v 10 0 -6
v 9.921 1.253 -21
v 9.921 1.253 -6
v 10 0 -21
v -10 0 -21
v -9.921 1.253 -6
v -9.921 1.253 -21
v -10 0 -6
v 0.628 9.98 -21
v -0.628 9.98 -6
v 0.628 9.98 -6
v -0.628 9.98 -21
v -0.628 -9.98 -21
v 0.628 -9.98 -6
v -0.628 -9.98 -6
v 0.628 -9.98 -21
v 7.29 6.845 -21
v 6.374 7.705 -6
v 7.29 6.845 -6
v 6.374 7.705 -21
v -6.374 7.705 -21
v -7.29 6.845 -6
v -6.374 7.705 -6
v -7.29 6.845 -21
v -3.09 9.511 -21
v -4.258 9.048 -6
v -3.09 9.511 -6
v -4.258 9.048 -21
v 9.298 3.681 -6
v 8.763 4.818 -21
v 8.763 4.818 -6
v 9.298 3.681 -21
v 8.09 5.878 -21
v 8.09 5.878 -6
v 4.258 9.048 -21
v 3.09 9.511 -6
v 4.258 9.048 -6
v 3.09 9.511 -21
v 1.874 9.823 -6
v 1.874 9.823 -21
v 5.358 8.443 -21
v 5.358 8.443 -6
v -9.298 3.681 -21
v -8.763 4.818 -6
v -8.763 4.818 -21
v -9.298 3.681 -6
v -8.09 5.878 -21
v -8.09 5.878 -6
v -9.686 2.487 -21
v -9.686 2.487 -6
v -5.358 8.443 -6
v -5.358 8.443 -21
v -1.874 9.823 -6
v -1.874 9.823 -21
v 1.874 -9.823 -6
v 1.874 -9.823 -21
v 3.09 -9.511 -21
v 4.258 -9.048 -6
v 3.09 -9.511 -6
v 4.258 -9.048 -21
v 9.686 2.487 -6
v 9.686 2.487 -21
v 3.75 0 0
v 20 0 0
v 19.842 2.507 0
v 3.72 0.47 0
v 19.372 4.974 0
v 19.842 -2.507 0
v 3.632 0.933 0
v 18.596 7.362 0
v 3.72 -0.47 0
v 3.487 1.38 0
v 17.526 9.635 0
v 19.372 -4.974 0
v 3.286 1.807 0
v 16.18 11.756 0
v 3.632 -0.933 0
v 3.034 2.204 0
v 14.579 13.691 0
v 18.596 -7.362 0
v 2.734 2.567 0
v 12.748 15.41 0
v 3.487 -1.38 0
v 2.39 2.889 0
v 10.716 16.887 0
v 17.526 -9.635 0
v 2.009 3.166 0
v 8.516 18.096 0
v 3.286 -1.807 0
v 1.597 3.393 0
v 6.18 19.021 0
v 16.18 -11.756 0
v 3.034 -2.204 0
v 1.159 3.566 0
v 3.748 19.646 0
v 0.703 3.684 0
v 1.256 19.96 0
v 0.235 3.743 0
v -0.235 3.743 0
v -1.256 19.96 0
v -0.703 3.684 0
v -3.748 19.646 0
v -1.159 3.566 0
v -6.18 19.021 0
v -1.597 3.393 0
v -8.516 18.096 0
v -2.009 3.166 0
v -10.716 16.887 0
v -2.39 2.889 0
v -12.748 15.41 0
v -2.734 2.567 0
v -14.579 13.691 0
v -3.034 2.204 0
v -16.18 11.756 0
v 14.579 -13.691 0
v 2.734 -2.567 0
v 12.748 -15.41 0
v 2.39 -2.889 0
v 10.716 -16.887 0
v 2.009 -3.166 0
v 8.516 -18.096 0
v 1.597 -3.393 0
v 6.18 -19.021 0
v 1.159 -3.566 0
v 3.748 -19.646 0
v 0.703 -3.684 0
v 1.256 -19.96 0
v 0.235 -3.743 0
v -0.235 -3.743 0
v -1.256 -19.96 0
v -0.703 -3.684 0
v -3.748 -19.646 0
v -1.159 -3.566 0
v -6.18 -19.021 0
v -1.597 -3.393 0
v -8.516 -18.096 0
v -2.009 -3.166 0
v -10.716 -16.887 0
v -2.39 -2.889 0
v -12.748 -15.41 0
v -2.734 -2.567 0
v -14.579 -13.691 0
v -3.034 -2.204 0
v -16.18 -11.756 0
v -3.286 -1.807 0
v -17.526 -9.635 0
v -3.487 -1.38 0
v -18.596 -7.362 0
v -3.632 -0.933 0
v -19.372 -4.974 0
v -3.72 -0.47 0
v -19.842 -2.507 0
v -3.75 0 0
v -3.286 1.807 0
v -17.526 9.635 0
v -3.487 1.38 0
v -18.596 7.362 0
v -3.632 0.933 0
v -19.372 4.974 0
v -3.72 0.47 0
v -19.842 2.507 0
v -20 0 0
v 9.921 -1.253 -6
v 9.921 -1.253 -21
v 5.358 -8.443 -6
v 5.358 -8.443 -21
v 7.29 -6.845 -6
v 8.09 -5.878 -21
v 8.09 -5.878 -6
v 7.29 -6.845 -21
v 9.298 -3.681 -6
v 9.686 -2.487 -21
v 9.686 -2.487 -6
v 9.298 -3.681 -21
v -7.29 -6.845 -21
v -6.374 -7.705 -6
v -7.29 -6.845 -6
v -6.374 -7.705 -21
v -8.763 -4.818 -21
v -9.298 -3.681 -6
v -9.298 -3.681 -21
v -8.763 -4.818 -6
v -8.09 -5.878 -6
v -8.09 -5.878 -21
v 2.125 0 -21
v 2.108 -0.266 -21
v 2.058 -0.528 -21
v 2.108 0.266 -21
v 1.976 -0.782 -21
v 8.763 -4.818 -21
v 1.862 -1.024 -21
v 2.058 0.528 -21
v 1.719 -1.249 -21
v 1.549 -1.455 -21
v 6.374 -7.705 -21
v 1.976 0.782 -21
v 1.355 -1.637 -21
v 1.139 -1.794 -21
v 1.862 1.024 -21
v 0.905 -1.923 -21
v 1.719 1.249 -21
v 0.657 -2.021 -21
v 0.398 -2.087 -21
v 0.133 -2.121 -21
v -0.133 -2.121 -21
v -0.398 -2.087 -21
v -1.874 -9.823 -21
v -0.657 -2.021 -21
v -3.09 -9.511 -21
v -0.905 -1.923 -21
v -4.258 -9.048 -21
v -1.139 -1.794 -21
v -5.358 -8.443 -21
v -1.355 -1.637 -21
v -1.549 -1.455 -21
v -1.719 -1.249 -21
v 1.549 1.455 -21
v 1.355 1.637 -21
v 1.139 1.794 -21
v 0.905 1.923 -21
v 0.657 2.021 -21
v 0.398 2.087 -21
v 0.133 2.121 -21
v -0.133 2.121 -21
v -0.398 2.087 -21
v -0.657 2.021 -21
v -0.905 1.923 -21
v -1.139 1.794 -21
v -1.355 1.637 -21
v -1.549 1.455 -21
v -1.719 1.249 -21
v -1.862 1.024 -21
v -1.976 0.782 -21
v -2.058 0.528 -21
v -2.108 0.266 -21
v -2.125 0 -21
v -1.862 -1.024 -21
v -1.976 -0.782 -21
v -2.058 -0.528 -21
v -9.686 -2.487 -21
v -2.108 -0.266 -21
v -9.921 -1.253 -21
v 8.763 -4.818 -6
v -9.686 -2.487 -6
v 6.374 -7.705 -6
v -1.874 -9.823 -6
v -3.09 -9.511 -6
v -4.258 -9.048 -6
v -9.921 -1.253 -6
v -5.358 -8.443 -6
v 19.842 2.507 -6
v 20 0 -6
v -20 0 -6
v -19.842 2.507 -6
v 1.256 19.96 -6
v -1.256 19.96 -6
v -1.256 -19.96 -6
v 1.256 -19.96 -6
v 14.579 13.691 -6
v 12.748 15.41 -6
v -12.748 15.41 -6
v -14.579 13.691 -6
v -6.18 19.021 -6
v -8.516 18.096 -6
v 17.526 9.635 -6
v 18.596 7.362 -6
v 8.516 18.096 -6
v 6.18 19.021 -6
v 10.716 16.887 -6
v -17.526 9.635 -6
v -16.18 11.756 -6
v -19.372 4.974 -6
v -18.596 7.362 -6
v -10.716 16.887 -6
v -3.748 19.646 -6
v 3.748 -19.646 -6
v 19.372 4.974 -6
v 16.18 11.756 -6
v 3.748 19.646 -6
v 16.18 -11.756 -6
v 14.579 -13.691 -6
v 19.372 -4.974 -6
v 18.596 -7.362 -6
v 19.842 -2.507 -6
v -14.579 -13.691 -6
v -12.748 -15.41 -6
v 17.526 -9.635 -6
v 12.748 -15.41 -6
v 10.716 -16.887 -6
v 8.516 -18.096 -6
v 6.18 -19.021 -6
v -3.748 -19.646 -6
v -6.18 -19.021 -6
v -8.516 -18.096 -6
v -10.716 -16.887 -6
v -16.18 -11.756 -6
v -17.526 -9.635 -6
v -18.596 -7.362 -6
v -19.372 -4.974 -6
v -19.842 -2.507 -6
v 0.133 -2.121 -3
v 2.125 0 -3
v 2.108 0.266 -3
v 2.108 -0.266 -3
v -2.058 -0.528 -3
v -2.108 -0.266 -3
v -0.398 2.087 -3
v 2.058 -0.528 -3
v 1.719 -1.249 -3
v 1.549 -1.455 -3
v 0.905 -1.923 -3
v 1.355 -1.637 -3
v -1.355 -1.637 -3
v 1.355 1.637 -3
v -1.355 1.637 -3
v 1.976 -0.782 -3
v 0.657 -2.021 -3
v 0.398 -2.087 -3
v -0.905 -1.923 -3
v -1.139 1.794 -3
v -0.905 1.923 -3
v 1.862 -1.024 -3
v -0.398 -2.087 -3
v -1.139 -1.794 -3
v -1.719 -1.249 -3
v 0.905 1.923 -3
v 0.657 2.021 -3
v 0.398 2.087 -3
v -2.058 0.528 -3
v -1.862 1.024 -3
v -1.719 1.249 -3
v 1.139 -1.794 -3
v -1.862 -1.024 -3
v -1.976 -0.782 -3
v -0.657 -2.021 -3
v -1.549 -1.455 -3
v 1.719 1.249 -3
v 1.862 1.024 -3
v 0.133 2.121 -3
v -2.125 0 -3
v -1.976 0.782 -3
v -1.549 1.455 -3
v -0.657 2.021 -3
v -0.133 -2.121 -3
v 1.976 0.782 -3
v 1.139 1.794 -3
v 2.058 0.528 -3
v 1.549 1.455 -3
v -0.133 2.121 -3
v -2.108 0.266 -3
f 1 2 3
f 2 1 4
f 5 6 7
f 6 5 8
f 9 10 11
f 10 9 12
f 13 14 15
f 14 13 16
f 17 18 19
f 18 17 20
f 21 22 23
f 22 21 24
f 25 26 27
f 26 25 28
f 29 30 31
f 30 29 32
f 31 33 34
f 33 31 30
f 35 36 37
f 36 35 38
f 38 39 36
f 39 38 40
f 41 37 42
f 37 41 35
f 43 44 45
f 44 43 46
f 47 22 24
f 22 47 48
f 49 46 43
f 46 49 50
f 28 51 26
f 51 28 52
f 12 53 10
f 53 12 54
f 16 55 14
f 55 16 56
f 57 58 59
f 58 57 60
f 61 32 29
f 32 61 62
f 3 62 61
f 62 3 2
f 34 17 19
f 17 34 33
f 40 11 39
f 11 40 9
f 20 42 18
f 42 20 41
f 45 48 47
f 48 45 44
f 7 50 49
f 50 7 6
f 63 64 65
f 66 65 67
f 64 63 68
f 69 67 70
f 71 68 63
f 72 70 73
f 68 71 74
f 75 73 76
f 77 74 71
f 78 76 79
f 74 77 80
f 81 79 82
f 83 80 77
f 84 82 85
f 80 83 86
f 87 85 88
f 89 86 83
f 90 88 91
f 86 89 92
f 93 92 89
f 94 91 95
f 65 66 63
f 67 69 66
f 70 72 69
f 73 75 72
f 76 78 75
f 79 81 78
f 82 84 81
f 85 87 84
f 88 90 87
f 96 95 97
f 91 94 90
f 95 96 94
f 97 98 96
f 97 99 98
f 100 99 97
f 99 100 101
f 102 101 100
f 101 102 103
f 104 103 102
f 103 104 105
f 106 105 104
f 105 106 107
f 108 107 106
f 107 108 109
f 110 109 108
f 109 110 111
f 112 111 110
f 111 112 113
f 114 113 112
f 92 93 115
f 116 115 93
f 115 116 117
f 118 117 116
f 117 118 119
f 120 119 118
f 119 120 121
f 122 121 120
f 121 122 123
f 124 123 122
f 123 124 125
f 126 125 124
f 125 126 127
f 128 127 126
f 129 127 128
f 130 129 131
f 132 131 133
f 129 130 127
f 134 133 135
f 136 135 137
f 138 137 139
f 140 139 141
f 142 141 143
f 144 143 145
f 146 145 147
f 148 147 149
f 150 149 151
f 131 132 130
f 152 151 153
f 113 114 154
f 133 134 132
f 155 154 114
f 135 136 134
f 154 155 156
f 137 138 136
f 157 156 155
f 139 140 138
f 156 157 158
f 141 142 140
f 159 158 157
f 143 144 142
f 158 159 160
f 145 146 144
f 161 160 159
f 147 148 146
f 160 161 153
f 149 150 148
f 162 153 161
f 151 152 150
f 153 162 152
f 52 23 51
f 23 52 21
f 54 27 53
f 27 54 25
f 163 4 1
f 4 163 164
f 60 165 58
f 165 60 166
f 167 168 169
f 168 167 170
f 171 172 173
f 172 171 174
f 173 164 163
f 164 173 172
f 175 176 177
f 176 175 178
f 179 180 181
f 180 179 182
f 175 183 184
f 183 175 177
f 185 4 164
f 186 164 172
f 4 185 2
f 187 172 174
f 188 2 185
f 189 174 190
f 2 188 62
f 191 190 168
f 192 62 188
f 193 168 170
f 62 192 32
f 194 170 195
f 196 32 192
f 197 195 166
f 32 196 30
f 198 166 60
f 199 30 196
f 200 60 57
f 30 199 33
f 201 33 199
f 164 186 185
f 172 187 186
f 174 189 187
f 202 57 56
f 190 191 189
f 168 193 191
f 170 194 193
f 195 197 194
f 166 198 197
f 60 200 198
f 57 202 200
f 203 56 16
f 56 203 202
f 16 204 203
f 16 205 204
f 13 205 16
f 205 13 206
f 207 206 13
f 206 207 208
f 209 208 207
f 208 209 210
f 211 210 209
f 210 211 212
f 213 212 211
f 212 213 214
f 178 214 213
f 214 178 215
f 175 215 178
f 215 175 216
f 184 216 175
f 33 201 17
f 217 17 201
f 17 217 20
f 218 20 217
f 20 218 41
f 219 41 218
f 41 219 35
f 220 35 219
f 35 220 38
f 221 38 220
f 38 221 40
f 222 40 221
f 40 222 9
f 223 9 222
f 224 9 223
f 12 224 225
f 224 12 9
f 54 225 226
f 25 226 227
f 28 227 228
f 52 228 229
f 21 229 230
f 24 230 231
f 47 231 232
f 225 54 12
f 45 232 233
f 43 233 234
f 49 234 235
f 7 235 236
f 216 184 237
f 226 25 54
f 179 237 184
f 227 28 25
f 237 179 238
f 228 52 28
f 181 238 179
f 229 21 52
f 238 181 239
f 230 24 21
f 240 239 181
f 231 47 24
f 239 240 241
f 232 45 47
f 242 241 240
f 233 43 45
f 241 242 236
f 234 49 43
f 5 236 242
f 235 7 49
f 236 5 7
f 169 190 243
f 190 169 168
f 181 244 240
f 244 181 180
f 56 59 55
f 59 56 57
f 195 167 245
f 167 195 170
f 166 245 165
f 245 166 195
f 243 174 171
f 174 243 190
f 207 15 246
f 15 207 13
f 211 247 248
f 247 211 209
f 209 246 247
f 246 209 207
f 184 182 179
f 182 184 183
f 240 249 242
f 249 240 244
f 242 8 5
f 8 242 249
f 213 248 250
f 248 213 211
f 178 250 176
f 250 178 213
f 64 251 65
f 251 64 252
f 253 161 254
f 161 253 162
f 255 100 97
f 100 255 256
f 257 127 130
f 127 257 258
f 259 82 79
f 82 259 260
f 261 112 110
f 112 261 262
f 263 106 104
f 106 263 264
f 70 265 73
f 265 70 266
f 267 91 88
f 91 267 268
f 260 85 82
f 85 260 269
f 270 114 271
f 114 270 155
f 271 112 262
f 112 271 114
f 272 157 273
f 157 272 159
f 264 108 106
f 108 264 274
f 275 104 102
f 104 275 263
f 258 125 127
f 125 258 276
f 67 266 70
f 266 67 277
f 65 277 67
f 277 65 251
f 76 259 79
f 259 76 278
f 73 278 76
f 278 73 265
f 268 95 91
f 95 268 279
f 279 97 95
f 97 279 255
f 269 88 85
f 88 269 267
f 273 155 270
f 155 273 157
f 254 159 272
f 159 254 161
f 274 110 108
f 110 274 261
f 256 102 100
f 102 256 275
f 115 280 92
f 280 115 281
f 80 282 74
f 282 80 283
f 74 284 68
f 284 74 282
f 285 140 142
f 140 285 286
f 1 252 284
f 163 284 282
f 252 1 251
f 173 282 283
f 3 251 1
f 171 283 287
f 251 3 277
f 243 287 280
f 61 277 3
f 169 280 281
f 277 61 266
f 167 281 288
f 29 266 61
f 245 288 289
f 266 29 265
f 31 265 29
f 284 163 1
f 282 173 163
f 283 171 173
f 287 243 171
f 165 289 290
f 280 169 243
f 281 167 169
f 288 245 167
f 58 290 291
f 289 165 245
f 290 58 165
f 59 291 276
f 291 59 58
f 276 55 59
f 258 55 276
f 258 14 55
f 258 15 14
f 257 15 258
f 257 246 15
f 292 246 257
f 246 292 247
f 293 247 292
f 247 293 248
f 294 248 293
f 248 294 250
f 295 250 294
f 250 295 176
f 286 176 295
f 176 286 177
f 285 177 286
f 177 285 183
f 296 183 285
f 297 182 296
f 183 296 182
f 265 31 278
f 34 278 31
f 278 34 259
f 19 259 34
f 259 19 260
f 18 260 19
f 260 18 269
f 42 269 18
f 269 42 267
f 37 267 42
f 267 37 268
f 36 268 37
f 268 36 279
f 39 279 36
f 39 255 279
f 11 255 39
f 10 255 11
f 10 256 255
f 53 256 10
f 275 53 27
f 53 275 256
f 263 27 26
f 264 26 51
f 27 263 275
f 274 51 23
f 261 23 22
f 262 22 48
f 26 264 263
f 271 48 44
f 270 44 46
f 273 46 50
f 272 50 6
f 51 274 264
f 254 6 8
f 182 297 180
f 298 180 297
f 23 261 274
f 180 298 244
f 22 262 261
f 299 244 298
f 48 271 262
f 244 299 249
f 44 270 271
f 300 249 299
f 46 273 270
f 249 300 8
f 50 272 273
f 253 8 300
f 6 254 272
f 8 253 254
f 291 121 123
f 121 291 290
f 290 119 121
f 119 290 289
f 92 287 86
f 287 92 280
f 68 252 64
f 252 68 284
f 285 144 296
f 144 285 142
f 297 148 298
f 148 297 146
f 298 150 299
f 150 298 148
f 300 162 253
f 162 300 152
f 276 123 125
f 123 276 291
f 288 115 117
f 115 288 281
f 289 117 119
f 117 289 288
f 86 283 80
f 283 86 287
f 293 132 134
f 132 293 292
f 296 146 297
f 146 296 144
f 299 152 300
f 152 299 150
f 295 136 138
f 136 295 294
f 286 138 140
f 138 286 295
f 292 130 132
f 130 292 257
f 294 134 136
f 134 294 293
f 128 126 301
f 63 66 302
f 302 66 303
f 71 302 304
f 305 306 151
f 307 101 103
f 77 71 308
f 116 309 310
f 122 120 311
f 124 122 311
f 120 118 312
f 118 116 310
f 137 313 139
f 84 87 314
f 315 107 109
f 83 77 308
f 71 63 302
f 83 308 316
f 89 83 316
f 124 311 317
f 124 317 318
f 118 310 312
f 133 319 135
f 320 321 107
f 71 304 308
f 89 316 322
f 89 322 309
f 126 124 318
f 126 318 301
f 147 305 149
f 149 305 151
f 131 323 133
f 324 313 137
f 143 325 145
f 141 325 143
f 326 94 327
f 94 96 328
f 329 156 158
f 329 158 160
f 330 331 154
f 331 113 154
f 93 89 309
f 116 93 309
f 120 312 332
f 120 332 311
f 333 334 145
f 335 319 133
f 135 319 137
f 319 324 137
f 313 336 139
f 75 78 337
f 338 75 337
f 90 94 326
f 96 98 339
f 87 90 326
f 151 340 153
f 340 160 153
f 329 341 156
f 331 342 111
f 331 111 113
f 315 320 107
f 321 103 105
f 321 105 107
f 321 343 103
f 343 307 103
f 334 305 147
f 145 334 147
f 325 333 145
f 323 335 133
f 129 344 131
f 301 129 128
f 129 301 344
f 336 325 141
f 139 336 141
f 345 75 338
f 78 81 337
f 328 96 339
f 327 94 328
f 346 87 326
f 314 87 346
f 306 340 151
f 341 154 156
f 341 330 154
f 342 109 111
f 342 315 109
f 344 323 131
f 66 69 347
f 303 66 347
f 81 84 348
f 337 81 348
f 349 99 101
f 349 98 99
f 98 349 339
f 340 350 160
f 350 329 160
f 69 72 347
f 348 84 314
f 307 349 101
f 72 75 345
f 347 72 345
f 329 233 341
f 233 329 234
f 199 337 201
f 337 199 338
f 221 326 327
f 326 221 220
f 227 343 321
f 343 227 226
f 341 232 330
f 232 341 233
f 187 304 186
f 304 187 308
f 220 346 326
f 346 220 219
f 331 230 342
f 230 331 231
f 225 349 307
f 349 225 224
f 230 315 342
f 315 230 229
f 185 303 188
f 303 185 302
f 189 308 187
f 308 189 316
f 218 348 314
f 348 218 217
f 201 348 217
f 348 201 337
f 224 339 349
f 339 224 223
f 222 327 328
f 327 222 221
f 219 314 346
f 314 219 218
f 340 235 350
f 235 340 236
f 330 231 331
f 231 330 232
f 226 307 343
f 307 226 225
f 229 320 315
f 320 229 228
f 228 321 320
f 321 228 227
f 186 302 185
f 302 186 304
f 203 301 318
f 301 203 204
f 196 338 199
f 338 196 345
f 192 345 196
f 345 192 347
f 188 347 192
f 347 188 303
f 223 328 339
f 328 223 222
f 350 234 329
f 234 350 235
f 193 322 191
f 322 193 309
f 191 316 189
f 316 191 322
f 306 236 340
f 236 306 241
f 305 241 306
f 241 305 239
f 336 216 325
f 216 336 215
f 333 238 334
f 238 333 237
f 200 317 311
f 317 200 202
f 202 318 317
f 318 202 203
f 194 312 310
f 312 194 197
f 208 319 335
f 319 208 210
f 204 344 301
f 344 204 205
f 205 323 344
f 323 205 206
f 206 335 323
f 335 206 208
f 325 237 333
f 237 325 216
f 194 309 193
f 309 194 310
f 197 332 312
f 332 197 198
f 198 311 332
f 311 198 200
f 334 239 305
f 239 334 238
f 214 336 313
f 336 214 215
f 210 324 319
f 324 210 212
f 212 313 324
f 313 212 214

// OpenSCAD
$fn = 50;


difference() {
	union() {
		translate(v = [0, 0, -21.0000000000]) {
			cylinder(h = 21, r = 10.0000000000);
		}
		translate(v = [0, 0, -6.0000000000]) {
			cylinder(h = 6, r = 20.0000000000);
		}
	}
	union() {
		translate(v = [0, 0, 0]) {
			rotate(a = [0, 0, 0]) {
				difference() {
					union() {
						#translate(v = [0, 0, -21.0000000000]) {
							cylinder(h = 21, r = 2.0000000000);
						}
						#translate(v = [0, 0, -3]) {
							cylinder(h = 3, r = 10.0000000000, r1 = 2.1250000000, r2 = 3.7500000000);
						}
						#translate(v = [0, 0, -21.0000000000]) {
							cylinder(h = 21, r = 2.1250000000);
						}
						#translate(v = [0, 0, -21.0000000000]) {
							cylinder(h = 21, r = 2.0000000000);
						}
					}
					union();
				}
			}
		}
	}
}
